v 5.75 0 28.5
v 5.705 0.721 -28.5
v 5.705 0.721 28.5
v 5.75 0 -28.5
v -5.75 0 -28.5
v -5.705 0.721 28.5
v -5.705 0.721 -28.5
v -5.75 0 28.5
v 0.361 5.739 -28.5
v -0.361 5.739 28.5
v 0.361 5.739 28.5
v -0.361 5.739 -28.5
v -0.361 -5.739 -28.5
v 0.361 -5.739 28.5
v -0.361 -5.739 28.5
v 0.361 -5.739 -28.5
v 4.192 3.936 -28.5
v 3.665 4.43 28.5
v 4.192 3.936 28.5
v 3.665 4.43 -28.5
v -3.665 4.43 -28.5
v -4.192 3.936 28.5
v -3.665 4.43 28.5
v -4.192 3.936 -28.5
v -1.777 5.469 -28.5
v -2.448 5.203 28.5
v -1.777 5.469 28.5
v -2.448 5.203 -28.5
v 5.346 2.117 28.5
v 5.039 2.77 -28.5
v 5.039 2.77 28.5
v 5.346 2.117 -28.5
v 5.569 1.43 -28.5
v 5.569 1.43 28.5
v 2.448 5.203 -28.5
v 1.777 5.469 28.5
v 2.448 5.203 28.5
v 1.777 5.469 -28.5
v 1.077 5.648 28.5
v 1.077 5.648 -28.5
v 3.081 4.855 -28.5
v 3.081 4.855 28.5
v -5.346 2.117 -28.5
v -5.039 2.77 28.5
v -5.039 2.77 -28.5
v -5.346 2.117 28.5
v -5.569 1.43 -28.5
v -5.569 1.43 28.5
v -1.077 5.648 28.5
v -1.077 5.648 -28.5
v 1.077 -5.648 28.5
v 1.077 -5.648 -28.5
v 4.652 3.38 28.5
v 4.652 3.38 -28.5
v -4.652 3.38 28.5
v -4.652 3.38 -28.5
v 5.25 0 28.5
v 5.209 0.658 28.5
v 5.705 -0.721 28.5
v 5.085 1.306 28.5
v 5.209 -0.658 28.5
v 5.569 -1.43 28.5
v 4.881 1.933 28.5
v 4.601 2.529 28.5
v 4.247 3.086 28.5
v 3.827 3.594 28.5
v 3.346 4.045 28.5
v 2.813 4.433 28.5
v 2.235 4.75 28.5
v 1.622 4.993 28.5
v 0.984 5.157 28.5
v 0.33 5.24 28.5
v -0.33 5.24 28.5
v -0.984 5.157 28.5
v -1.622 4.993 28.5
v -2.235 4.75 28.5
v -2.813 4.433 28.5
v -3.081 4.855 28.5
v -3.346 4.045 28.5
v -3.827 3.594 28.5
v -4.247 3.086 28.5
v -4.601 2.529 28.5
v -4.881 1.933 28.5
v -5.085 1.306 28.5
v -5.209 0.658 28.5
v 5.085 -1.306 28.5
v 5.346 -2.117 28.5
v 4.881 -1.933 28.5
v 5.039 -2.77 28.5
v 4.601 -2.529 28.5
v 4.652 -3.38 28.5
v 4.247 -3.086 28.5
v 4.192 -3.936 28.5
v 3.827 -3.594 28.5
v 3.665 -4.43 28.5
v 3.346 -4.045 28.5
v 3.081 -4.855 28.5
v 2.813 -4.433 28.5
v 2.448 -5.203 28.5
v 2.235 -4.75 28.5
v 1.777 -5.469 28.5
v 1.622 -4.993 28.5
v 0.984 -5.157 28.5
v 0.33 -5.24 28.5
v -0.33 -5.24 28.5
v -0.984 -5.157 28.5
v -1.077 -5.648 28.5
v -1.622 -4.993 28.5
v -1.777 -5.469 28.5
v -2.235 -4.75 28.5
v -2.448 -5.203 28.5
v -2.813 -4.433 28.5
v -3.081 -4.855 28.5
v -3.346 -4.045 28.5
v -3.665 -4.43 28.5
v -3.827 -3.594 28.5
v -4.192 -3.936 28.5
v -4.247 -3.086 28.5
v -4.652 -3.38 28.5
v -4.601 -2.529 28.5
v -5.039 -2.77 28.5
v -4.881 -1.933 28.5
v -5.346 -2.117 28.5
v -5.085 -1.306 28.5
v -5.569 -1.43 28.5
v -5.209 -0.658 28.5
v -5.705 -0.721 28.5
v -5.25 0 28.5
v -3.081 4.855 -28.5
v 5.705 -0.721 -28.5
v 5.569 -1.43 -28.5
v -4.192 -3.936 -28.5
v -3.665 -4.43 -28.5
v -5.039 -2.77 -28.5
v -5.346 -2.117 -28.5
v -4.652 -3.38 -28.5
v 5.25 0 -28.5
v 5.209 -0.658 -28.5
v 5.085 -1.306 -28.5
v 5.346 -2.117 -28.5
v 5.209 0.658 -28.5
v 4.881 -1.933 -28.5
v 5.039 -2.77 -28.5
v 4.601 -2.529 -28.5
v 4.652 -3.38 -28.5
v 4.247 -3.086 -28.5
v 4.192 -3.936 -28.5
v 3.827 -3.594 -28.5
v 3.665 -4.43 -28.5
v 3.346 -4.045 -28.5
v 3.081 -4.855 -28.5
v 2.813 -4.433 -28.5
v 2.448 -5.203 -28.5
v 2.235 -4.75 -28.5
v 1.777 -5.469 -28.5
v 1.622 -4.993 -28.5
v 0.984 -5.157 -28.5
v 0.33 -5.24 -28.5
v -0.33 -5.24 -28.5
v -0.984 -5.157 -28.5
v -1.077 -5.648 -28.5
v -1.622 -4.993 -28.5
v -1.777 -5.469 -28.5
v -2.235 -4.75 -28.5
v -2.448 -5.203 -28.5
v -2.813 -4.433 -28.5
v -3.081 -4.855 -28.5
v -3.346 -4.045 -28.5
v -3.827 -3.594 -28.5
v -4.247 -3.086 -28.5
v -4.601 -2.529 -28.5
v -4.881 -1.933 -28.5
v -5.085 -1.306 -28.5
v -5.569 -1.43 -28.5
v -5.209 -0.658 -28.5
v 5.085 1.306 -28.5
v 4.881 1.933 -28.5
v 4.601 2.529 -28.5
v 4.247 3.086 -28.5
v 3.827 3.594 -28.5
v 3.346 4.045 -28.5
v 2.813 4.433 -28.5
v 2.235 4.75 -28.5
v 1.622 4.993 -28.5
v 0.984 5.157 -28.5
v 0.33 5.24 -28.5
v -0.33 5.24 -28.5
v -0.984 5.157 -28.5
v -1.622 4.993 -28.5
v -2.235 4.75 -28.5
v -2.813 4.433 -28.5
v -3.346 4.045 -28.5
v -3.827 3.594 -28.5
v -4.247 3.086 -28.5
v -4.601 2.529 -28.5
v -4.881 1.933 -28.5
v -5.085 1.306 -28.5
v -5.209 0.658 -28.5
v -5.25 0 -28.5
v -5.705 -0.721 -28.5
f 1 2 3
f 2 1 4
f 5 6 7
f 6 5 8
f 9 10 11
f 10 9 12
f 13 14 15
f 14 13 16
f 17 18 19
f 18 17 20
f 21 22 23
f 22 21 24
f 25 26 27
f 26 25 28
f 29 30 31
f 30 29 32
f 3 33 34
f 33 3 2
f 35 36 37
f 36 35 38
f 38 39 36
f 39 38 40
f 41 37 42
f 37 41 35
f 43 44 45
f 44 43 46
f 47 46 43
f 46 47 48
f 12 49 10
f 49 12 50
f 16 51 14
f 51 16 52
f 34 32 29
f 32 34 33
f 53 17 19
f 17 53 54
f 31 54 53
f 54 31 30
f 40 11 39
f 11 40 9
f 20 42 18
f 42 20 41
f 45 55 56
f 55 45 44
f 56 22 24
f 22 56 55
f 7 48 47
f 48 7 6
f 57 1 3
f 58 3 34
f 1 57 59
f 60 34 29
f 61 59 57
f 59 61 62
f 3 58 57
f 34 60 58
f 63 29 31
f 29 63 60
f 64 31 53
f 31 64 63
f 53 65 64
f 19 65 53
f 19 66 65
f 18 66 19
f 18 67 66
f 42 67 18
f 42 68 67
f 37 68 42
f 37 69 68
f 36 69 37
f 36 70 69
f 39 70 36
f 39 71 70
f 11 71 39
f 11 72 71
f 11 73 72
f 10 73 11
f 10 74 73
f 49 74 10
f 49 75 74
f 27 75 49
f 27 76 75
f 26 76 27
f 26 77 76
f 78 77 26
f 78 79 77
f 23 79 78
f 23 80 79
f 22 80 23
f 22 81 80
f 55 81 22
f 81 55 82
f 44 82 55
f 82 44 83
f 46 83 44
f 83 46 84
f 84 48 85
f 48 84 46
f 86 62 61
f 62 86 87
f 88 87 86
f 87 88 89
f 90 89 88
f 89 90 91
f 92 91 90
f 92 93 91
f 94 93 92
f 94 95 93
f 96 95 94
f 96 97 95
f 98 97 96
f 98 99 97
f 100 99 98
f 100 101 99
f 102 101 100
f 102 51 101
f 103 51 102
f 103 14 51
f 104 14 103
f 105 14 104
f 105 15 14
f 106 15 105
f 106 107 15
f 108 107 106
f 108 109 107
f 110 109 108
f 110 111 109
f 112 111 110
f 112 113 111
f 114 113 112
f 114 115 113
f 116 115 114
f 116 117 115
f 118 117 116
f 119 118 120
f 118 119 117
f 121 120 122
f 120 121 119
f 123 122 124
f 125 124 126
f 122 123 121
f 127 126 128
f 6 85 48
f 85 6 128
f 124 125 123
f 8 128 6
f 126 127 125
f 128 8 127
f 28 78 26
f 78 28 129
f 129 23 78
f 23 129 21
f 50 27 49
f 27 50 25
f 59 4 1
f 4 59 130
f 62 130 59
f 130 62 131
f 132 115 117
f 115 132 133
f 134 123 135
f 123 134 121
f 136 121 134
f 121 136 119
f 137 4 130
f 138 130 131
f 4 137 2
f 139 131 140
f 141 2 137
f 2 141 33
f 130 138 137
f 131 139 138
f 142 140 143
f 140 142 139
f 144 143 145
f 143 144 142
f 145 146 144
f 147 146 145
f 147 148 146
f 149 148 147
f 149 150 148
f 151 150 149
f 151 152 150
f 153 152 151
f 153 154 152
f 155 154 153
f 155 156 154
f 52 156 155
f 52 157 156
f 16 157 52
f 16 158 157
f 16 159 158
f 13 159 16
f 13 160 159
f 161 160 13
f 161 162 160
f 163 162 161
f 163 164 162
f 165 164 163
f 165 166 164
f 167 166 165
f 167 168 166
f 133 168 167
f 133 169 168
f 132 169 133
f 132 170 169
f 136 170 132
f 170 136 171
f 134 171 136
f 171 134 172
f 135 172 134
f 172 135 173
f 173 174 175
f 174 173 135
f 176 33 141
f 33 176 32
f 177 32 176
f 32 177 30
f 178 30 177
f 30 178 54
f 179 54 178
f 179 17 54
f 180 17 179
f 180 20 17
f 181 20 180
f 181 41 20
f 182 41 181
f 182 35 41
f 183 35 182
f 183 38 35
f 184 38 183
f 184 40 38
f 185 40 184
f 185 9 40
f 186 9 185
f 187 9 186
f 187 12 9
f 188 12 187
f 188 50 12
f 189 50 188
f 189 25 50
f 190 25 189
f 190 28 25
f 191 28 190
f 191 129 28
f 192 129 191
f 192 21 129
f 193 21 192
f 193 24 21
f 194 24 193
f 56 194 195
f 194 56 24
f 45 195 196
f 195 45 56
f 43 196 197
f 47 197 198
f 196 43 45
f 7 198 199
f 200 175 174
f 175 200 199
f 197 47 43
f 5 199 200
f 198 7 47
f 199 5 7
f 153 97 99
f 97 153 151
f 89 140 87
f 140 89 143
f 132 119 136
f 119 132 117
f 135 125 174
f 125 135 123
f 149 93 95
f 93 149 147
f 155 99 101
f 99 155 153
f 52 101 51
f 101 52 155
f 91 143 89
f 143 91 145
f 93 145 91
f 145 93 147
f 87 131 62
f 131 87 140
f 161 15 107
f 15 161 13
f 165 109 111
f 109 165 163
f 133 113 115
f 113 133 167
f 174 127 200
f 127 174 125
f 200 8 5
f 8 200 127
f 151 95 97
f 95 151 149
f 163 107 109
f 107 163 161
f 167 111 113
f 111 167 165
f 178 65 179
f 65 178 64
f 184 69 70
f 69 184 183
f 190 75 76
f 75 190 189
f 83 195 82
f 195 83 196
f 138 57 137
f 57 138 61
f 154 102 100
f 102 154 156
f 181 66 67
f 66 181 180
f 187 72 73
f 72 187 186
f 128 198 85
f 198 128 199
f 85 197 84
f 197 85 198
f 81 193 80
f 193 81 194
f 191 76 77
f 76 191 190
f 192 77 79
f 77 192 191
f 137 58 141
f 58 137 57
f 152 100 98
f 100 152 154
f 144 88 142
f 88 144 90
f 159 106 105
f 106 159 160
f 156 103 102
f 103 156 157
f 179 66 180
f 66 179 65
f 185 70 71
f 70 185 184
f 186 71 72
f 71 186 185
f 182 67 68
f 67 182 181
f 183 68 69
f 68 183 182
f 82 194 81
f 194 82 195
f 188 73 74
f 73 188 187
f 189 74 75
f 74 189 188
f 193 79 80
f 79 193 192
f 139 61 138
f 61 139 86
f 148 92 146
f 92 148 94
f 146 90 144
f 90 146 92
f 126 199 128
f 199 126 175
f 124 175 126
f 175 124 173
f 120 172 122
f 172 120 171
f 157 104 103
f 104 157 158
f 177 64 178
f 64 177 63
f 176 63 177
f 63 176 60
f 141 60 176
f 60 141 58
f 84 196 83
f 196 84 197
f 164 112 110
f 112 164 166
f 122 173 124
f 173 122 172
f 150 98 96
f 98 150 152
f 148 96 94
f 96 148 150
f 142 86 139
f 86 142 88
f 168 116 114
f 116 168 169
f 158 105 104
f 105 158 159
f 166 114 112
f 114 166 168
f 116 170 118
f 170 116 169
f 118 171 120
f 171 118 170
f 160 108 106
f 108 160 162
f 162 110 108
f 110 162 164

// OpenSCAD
$fn = 50;


difference() {
	union() {
		translate(v = [0, 0, -28.5000000000]) {
			cylinder(h = 57, r = 5.7500000000);
		}
	}
	union() {
		translate(v = [0, 0, -100.0000000000]) {
			cylinder(h = 200, r = 5.2500000000);
		}
	}
}
